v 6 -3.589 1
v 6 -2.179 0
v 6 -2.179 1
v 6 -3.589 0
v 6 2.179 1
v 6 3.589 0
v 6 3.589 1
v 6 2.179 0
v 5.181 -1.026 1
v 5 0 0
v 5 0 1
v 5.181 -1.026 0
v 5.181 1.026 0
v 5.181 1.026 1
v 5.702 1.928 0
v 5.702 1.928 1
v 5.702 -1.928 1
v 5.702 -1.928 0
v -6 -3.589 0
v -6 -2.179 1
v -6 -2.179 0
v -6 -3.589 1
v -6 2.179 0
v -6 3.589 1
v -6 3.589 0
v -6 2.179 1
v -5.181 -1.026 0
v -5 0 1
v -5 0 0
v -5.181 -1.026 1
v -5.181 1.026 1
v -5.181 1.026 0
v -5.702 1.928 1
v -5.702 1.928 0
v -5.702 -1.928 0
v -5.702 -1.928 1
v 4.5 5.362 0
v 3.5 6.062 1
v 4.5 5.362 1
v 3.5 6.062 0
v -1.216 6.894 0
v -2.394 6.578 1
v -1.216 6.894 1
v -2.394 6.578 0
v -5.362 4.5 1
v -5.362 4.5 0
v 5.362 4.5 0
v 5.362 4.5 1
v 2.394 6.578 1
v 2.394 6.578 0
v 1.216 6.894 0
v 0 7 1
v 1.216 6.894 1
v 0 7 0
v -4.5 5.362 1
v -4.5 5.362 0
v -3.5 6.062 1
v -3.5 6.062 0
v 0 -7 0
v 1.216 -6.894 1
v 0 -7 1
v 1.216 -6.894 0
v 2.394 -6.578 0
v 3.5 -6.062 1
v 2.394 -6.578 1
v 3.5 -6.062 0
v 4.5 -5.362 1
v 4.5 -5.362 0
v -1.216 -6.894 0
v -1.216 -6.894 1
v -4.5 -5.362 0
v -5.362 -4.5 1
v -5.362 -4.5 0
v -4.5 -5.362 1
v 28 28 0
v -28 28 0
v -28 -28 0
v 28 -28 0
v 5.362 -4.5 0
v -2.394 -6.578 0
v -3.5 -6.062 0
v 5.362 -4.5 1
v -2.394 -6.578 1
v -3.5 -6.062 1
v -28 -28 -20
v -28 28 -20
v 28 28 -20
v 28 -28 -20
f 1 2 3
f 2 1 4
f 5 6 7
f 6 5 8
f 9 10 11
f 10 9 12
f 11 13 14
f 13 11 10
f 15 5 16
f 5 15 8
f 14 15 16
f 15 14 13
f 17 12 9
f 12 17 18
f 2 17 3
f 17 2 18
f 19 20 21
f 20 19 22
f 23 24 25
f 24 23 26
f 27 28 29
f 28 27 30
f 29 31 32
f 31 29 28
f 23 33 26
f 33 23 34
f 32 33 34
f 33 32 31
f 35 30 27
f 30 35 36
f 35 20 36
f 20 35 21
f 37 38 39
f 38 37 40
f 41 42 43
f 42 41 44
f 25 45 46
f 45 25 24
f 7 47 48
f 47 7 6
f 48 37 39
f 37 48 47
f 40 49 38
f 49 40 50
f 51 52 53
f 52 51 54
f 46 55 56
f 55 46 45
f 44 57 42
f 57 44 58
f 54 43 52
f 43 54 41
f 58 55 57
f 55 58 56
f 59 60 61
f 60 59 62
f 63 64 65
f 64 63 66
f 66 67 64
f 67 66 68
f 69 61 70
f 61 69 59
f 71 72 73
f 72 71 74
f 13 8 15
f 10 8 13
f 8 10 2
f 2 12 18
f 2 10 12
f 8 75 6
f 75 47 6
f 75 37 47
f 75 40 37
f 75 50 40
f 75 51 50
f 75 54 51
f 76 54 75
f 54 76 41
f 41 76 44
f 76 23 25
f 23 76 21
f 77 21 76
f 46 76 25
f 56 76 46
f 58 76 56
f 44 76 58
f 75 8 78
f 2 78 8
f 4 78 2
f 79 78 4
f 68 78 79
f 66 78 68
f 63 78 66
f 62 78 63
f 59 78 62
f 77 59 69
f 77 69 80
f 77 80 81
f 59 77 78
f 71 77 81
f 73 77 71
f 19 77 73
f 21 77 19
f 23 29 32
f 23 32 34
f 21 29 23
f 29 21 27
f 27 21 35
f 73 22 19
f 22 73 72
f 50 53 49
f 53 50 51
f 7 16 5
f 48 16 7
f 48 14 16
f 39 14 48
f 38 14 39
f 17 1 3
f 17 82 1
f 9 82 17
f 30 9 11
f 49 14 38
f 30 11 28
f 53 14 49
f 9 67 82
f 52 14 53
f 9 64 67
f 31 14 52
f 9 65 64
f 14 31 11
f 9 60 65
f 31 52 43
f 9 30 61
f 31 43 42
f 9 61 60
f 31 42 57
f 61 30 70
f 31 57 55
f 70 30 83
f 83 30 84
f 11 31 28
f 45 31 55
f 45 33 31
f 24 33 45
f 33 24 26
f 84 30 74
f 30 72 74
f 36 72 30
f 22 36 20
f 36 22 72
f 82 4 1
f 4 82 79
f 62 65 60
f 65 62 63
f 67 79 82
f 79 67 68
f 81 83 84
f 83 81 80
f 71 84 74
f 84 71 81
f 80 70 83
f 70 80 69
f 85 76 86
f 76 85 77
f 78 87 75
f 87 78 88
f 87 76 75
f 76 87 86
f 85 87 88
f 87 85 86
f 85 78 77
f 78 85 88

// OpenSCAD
module clock_movement() {
    
    // box-shaped main body
    width = 56;
    depth = 56;
    height = 20;
    
    // alignment pattern
    alignment_dm = 14; // diameter of alignment pattern
    alignment_h = 1;    // height of alignment pattern
    alignment_flat = 1; // recess of falttening
    alignment_notch_dm = 6; // diameter of alignment notches
    alignment_notch_fl = 2; // recess of notch flattening
    
    // main body
    color("Gray")
    // method 1 as of in the book
    translate( [-width / 2, -depth / 2 , -height ] )
    cube( [width, depth, height] ); 
    // method 2
//    translate( [0, 0, -height/2] )
//   # cube( [width, depth, height], center = true ); 
    
    // alignment pattern
    difference() {
        
        color("DarkBlue")
        cylinder( d = alignment_dm, h = alignment_h, $fn = 36);
        
        color("Gray")
        for ( i = [0:1] )
        mirror( [i, 0, 0] )
        union() {
            translate([ alignment_dm / 2 - alignment_flat, -(alignment_dm + 2) / 2, -1 ])
            cube([alignment_flat + 1, alignment_dm + 2, alignment_h + 2 ]);
            
            translate([ alignment_dm / 2 - alignment_notch_fl + alignment_notch_dm / 2, 0, -1 ])
            cylinder( d = alignment_notch_dm, h = alignment_h +2, $fn = 18);
        }
    }
    
    }
    
clock_movement();
